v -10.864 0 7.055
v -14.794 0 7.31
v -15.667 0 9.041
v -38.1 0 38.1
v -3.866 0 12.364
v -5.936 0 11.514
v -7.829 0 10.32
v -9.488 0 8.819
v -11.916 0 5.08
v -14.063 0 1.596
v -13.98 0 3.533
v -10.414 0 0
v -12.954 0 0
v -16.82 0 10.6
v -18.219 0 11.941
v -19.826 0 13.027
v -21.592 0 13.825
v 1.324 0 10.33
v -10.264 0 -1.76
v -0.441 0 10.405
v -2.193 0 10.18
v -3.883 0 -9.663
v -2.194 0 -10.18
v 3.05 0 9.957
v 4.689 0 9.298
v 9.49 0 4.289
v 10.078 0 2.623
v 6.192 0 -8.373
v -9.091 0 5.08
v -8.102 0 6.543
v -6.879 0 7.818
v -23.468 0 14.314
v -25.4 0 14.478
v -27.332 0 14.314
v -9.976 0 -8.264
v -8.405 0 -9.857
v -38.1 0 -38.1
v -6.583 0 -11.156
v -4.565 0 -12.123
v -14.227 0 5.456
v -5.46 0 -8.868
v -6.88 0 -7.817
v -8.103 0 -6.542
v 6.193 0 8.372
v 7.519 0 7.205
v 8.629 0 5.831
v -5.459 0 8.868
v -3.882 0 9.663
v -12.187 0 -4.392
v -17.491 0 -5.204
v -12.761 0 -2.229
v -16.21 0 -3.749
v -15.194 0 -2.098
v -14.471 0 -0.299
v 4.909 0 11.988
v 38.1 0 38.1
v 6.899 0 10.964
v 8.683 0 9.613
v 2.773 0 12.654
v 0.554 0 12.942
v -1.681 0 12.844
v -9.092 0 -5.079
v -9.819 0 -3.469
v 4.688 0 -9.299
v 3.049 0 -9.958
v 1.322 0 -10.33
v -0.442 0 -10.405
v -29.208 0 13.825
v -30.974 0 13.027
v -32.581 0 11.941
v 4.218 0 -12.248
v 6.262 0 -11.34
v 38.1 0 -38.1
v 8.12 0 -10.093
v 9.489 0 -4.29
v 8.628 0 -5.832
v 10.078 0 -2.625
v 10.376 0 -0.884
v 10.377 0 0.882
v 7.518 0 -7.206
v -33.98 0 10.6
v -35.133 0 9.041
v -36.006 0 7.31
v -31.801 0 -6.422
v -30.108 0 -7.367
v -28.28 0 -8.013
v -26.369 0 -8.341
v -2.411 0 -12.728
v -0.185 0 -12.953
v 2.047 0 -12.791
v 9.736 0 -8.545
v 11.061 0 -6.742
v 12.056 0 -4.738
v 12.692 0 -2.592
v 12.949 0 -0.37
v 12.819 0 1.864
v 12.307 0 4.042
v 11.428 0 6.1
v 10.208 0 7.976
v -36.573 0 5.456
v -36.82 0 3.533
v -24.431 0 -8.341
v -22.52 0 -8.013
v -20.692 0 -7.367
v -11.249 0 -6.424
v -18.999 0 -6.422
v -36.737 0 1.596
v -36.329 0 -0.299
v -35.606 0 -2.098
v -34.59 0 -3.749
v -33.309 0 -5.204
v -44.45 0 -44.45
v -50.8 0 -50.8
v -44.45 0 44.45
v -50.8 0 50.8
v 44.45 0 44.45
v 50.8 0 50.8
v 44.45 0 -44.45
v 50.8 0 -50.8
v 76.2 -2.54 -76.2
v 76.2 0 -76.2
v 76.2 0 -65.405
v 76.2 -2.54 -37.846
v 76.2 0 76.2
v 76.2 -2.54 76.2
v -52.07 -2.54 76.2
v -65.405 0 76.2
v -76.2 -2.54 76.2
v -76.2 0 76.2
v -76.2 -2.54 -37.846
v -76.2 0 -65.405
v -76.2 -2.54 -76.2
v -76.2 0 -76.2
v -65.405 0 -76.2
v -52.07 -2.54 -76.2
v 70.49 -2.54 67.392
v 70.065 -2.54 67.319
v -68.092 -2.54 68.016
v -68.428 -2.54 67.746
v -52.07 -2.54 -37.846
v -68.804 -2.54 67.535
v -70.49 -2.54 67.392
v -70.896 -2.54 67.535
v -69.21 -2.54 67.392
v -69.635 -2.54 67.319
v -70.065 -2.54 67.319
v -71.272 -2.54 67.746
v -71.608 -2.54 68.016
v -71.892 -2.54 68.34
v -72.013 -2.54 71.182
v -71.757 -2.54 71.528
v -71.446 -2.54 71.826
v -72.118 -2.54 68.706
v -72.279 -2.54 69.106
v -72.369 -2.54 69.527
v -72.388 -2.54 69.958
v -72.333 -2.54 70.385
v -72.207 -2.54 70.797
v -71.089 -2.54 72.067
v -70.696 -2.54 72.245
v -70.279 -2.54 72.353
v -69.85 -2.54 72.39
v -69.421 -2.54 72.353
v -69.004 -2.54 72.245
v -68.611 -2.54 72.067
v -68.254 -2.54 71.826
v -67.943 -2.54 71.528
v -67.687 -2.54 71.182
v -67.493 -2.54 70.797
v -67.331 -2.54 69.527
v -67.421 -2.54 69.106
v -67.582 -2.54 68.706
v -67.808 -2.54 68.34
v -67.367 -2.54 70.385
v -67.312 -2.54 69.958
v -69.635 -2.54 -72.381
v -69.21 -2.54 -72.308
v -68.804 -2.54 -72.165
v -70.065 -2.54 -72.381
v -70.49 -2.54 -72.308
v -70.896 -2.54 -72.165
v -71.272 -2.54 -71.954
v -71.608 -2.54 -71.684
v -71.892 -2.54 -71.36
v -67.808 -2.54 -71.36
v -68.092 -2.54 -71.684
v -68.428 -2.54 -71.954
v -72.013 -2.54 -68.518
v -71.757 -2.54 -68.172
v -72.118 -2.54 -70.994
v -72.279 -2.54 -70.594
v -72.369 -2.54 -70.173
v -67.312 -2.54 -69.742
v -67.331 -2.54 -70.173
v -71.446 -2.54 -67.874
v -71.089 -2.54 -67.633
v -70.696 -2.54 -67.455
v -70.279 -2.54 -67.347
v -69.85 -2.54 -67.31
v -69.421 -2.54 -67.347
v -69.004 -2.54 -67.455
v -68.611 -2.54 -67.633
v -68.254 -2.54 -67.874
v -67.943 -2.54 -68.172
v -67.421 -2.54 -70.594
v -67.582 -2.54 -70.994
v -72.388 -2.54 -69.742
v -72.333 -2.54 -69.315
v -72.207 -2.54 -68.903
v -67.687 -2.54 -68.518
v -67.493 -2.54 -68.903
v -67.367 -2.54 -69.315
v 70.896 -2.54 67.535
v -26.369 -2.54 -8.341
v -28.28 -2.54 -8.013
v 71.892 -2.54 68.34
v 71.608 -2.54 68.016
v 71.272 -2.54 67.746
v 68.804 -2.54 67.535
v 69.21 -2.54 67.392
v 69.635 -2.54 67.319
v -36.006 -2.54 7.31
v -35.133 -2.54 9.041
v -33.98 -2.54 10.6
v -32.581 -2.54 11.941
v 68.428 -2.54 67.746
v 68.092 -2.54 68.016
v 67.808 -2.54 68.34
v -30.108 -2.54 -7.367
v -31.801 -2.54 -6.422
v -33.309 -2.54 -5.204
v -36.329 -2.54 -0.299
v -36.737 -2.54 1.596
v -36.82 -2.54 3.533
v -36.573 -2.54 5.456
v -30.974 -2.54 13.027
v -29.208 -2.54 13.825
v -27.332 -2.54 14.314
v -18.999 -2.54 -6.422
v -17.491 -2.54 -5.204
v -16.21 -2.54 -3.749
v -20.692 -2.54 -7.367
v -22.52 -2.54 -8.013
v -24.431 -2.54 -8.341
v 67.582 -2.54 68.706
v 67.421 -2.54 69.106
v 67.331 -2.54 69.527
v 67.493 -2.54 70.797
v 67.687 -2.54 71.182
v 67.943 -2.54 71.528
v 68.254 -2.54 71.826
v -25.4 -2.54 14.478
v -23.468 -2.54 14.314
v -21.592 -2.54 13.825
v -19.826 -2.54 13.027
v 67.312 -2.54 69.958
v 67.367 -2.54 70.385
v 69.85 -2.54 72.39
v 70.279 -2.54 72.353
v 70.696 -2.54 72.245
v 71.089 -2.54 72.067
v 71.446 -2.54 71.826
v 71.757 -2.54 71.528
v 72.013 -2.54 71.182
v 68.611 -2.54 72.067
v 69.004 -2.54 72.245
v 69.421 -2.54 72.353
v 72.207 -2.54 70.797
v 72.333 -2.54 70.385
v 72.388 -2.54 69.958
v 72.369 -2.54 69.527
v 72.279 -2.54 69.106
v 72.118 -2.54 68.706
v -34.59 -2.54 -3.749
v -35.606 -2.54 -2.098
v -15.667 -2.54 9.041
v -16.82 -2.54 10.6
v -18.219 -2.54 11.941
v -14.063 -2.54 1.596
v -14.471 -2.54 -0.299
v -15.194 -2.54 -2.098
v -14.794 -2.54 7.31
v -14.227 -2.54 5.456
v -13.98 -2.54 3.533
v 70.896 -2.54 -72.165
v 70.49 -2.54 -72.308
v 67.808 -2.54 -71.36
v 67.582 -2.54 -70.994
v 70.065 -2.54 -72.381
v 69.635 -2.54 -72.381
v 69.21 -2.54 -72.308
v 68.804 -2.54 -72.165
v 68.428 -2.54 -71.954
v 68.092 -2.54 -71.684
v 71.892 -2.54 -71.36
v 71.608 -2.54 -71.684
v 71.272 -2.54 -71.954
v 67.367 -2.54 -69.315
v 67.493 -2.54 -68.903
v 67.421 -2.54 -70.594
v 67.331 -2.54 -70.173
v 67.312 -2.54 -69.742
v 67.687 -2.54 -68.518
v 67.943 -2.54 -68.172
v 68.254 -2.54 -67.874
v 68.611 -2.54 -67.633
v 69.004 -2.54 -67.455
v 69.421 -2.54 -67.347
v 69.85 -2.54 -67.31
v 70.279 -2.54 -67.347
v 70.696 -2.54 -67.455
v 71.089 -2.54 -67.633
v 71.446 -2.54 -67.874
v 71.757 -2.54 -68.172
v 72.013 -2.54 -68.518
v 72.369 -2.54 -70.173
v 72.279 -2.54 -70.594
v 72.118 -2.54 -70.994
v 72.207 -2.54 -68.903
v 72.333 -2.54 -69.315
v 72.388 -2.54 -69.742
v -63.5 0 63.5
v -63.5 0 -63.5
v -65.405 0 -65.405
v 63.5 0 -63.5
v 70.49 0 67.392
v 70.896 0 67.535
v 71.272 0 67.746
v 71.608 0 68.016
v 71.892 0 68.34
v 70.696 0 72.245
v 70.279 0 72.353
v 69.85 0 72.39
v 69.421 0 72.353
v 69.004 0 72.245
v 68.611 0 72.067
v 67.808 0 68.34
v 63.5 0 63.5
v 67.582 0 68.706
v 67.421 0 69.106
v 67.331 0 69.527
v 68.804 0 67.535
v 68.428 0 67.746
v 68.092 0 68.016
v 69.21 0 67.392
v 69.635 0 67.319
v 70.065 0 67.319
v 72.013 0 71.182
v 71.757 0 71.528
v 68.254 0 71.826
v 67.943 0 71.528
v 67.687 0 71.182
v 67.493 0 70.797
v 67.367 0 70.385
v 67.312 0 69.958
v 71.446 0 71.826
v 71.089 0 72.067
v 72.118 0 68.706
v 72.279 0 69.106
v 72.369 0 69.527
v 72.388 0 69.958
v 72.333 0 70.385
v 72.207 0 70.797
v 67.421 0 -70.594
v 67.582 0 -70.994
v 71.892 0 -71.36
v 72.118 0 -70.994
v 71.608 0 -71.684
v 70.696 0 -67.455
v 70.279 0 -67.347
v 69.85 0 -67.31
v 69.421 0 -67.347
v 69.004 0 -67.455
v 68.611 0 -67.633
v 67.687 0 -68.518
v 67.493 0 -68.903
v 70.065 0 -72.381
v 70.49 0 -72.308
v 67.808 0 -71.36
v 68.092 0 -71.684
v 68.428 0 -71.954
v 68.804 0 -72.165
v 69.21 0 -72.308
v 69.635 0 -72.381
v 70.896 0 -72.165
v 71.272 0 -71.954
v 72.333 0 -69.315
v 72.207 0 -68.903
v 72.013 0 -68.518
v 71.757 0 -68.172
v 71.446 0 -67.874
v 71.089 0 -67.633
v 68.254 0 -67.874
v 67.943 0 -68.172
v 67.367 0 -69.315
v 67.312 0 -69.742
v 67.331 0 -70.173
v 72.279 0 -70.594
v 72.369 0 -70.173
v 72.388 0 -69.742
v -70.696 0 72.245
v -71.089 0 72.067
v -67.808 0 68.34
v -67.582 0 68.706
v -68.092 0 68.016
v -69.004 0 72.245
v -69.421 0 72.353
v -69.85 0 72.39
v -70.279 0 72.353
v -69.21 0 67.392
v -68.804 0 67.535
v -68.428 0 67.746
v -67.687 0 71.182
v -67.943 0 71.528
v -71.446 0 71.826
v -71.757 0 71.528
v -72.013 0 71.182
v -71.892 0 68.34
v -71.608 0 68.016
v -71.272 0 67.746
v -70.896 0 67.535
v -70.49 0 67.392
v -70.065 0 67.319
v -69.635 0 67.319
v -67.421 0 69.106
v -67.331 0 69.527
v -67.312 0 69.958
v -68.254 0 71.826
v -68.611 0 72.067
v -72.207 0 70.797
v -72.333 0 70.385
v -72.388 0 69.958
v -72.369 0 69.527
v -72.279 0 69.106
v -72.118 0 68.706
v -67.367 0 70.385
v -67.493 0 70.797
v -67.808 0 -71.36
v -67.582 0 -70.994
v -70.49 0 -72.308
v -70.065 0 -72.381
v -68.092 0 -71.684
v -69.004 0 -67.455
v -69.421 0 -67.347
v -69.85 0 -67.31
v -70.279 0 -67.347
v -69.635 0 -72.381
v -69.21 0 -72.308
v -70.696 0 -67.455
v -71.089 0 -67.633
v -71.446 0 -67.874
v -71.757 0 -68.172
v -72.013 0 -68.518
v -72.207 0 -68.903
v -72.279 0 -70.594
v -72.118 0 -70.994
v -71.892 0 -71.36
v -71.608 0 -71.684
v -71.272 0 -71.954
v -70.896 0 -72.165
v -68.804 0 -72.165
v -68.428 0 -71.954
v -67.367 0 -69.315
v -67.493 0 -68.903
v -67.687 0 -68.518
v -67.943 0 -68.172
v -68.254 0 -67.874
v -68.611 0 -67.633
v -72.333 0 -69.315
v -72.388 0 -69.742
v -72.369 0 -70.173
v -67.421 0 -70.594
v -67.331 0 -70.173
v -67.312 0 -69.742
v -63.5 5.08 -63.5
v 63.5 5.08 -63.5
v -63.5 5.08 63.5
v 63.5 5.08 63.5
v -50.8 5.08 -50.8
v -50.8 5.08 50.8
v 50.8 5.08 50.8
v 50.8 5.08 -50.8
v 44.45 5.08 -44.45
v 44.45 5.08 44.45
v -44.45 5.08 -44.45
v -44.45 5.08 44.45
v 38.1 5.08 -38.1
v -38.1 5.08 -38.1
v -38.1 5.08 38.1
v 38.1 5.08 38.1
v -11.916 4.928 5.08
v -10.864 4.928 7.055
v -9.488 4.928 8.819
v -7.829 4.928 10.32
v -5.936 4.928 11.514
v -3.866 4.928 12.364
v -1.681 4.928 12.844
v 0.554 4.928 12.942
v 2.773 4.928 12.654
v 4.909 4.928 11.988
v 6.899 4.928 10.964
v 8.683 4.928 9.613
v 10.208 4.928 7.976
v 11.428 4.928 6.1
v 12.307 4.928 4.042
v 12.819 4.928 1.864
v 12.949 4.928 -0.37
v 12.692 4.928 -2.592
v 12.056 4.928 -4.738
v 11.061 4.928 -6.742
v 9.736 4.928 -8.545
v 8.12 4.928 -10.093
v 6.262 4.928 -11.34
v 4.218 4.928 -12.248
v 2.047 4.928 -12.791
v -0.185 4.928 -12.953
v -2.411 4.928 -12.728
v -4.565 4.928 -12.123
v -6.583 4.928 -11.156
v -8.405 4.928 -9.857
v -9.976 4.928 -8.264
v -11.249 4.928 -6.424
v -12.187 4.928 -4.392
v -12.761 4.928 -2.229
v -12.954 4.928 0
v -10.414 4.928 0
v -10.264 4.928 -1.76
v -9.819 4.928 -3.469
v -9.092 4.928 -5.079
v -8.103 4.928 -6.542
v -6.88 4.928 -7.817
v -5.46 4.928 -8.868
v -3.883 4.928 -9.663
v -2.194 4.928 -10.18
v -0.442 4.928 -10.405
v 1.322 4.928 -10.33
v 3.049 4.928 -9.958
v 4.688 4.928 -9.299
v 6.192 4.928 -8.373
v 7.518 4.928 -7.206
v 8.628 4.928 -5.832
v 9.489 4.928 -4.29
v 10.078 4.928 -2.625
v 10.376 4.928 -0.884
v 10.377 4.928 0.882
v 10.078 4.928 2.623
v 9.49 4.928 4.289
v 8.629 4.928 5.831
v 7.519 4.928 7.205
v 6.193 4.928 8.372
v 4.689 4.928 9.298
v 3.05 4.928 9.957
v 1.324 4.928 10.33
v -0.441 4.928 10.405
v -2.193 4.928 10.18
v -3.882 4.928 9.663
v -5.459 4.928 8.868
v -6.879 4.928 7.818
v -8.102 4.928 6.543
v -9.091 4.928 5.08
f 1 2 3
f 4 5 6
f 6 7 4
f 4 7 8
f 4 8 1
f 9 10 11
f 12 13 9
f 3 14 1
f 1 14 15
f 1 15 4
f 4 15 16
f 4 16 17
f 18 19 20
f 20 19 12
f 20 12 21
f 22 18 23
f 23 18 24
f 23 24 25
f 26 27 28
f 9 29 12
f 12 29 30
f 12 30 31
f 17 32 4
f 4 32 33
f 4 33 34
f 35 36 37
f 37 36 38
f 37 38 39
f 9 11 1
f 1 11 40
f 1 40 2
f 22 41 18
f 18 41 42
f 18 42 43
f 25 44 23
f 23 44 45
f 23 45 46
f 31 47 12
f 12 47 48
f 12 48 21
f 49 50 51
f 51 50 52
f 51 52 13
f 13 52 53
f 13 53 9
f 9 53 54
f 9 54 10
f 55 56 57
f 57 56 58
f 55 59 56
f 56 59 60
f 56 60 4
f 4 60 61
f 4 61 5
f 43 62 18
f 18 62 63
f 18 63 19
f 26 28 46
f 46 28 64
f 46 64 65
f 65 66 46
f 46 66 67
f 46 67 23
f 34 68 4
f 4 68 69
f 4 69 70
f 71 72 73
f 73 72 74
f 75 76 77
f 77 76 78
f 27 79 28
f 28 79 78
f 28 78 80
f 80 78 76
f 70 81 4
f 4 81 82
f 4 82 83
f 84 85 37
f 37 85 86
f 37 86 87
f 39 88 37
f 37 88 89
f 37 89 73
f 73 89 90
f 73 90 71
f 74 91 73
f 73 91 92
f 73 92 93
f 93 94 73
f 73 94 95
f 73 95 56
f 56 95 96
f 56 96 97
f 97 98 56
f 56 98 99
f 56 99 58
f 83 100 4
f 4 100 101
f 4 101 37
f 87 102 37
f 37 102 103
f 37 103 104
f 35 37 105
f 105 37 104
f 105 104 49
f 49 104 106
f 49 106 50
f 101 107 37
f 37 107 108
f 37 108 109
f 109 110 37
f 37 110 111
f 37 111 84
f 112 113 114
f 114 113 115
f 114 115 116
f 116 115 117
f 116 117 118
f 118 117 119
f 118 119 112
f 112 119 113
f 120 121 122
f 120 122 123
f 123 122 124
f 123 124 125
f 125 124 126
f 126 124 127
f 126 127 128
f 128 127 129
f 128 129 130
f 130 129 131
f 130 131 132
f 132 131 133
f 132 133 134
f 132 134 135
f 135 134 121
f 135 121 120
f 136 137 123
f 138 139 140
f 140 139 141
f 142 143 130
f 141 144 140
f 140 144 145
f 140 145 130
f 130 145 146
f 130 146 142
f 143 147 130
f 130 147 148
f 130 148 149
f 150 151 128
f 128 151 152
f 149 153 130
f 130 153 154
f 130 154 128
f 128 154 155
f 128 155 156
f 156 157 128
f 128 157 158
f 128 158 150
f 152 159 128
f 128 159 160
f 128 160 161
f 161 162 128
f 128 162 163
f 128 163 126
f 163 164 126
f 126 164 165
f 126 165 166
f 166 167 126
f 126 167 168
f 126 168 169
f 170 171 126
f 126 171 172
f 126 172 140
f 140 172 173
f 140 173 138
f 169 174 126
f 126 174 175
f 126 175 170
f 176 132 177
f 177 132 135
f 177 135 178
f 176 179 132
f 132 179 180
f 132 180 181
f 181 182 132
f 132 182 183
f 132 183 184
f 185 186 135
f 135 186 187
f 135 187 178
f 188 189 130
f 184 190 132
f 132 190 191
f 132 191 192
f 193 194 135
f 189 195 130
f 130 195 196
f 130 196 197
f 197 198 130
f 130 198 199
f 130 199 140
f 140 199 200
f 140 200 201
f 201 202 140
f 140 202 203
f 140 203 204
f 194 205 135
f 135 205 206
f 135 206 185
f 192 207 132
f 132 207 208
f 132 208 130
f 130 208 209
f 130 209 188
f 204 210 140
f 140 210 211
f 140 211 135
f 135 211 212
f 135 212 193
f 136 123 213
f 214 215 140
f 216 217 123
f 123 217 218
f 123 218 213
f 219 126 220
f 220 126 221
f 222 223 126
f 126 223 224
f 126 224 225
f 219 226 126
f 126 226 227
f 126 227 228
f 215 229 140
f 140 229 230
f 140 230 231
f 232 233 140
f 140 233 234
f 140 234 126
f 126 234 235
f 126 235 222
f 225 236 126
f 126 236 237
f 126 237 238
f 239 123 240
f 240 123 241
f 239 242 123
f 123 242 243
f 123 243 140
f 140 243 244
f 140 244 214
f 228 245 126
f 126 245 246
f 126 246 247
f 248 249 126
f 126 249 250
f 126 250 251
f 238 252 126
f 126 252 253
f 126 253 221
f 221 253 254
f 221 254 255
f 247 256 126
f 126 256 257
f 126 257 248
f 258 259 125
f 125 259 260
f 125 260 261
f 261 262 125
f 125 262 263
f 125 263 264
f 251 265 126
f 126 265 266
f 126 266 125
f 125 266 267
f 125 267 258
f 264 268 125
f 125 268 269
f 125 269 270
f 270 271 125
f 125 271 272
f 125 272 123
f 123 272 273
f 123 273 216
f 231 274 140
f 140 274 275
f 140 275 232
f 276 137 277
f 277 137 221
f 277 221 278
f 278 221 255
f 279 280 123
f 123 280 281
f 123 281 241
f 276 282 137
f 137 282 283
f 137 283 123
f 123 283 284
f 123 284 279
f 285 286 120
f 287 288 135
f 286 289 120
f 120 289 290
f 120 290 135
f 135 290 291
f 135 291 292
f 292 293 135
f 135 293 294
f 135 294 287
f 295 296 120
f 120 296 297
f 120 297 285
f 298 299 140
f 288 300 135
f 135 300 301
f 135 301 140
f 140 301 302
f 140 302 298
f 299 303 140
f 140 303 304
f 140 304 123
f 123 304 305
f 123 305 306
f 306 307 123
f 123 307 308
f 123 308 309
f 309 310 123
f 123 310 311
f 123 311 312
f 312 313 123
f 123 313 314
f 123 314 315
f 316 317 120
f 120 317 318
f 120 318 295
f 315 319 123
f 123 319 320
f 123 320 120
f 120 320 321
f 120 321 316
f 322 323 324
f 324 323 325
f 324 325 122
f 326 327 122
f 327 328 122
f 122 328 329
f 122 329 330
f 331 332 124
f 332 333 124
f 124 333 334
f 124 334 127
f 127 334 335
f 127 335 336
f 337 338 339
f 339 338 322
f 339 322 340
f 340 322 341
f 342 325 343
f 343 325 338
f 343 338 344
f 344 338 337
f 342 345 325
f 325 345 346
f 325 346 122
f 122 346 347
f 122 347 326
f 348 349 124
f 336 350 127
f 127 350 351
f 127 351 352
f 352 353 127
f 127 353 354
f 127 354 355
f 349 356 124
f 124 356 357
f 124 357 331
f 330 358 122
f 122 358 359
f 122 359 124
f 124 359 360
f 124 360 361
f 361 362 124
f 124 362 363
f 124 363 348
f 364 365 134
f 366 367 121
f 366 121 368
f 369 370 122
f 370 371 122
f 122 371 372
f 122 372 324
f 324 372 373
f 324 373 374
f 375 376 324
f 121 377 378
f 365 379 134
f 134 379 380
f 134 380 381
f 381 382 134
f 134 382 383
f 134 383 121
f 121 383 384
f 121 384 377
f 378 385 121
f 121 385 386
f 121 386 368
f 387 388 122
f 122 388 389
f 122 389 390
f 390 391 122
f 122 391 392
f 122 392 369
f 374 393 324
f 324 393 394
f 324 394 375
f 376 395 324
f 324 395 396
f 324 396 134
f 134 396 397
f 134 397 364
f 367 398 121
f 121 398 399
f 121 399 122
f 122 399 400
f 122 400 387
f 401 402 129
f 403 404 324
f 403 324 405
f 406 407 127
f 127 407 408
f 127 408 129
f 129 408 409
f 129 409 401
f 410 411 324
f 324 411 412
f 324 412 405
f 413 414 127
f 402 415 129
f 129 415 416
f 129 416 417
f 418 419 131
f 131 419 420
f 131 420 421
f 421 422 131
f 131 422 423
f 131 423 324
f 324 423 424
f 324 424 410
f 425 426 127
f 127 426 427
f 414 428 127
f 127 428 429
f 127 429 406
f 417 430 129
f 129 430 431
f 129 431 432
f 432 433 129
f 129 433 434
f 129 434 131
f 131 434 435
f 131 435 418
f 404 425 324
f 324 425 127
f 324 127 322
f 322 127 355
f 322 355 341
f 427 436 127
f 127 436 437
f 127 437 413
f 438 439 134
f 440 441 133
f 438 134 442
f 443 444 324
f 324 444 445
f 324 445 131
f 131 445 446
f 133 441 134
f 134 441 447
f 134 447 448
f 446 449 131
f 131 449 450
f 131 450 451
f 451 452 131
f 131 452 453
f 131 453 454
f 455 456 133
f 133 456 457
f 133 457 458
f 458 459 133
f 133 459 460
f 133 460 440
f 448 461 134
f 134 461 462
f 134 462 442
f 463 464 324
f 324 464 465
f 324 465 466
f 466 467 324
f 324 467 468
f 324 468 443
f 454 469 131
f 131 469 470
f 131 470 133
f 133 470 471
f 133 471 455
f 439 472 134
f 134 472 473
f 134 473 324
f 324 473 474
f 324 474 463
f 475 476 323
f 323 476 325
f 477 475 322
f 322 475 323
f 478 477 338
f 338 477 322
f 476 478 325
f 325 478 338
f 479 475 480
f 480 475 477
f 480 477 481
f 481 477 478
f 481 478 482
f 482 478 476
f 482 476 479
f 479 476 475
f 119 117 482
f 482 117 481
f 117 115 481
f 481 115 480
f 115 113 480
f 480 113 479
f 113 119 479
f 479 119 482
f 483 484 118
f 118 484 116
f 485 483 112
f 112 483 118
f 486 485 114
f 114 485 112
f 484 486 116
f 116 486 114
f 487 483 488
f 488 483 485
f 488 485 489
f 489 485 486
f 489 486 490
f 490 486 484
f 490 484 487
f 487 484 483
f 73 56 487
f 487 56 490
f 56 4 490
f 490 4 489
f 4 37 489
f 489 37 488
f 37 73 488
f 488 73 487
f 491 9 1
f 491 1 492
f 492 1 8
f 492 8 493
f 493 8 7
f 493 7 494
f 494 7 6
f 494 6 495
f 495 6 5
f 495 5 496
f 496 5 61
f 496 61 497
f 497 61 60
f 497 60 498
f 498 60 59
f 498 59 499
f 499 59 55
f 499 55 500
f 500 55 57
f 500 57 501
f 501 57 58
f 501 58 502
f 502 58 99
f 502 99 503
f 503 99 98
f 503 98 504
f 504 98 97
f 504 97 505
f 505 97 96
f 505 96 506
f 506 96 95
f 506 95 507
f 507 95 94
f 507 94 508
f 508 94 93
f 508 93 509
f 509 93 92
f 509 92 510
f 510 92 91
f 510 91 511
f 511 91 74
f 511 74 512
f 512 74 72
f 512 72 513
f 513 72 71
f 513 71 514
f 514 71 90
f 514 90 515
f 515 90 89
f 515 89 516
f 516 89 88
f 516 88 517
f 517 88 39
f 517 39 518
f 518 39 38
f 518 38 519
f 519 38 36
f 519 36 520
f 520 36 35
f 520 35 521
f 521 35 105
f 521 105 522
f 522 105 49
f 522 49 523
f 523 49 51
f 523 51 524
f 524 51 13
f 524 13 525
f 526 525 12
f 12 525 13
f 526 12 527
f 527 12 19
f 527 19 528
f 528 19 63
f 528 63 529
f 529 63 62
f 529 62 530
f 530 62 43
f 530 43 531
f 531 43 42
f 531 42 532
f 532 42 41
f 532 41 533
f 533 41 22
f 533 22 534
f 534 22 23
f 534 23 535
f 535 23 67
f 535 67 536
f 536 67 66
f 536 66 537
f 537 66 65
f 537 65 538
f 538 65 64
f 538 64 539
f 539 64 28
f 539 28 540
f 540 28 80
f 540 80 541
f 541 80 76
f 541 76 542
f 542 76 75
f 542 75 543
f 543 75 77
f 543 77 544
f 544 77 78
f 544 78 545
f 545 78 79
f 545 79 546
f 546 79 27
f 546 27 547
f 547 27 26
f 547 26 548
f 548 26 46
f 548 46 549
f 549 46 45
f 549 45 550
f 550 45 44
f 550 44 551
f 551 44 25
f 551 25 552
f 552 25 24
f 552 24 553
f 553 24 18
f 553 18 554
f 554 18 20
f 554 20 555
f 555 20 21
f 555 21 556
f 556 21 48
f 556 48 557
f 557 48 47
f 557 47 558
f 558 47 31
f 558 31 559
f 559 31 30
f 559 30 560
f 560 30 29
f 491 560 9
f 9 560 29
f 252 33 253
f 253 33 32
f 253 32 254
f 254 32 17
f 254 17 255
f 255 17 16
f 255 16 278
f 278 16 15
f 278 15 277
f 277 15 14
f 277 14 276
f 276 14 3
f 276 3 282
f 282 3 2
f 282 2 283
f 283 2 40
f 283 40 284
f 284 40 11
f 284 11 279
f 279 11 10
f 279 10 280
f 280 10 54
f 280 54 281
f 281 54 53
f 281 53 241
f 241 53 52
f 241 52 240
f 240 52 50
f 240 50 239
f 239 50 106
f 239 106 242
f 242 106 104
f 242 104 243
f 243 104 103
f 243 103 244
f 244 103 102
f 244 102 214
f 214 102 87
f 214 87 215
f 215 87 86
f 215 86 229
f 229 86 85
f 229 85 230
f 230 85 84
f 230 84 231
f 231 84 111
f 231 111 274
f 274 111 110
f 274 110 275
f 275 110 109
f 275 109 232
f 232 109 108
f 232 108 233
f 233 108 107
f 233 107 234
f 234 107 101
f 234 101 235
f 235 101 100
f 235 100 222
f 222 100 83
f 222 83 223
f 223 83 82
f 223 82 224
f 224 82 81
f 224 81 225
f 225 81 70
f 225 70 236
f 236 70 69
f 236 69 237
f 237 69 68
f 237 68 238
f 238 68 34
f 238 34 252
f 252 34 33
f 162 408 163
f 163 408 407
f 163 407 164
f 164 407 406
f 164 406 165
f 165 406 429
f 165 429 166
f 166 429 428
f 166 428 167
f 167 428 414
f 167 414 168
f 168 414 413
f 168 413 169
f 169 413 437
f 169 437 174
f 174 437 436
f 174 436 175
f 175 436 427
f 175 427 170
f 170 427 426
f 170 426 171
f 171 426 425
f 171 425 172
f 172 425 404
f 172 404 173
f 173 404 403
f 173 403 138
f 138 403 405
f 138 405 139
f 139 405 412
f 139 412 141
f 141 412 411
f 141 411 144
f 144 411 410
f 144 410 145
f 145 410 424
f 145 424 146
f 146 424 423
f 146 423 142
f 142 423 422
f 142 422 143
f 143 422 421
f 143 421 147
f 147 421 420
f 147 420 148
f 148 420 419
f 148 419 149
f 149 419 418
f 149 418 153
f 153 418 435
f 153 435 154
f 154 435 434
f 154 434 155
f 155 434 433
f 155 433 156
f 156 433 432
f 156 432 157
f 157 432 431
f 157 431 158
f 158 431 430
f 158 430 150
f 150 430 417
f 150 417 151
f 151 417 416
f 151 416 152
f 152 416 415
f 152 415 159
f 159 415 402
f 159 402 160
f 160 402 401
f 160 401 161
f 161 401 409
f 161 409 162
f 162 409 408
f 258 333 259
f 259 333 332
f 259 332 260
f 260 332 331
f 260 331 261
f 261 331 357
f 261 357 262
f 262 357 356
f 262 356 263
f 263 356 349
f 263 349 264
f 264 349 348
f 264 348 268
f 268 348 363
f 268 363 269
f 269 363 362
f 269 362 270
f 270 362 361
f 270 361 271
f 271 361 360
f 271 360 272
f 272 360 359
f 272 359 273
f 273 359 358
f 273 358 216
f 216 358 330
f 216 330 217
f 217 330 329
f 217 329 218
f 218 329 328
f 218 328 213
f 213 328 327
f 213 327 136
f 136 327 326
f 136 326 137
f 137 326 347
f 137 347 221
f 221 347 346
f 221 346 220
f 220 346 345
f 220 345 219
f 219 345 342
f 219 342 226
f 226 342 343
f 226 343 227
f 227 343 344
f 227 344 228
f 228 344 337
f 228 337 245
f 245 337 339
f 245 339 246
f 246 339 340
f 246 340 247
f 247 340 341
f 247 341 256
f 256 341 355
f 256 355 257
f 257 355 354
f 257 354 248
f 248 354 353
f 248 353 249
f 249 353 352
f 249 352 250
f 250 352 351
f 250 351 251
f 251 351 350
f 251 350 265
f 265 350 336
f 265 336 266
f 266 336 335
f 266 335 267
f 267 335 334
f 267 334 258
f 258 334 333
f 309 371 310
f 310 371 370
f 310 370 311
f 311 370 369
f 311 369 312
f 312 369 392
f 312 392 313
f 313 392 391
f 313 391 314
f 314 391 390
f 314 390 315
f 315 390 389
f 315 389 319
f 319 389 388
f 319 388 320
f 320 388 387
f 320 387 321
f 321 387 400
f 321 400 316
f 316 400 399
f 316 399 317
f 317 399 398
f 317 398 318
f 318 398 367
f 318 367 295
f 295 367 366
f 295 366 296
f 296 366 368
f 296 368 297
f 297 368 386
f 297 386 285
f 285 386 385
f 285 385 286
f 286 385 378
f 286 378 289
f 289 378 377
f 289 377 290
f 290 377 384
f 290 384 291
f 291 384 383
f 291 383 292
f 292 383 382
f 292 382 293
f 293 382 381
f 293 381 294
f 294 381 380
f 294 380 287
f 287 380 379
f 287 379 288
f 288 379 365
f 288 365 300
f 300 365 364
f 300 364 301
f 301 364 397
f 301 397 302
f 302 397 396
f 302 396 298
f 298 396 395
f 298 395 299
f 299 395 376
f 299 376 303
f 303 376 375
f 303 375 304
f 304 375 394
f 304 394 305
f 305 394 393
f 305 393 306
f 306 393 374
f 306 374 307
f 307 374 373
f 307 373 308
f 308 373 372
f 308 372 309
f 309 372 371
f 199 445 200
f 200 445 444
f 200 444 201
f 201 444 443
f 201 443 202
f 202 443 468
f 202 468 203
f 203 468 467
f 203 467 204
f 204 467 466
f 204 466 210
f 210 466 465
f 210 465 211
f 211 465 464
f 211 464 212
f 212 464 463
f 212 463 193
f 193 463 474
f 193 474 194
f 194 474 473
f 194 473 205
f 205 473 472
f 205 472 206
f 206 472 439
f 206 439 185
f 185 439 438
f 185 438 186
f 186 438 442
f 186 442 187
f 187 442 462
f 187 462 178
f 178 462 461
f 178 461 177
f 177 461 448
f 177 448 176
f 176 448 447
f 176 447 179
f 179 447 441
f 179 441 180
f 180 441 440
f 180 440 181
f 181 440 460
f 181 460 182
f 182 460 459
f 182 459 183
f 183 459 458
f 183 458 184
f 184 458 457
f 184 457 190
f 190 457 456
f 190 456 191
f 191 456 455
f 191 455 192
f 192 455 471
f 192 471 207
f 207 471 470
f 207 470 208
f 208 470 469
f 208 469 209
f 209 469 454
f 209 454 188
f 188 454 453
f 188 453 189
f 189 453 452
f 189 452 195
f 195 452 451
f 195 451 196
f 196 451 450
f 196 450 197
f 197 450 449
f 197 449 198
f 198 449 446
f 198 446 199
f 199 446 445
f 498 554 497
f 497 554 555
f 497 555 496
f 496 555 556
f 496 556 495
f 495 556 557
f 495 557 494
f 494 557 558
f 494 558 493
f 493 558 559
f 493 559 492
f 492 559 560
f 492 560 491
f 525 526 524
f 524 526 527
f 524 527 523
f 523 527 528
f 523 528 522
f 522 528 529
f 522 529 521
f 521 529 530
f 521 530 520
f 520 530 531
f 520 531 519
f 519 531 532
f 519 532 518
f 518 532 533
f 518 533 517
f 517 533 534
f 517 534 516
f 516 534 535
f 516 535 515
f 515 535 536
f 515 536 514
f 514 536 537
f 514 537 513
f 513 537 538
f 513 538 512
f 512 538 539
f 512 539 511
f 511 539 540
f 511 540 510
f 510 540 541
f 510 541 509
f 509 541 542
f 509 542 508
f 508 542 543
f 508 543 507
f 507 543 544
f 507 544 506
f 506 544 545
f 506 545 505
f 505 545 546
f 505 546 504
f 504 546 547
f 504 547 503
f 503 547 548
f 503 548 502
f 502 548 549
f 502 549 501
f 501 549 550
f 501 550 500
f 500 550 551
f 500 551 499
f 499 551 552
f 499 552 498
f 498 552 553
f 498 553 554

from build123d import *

# Parameters (mm, degrees)
SKETCH1_W           = 152.4
SKETCH1_H           = 152.4
BOSS_EXTRUDE1_DEPTH = 2.54
SKETCH2_W           = 127
SKETCH2_H           = 127
BOSS_EXTRUDE3_DEPTH = 5.08
SKETCH3_W           = 101.6
SKETCH3_H           = 101.6
CUT_EXTRUDE2_DEPTH  = 5.08
SKETCH5_W           = 88.9
SKETCH5_H           = 88.9
BOSS_EXTRUDE4_DEPTH = 5.08
SKETCH6_W           = 76.2
SKETCH6_H           = 76.2
CUT_EXTRUDE3_DEPTH  = 5.08
BOSS_EXTRUDE5_DEPTH = 2.794
SKETCH8_R           = 11.43
CUT_EXTRUDE4_DEPTH  = 3.54
SKETCH9_R           = 2.54
CUT_EXTRUDE5_DEPTH  = 3.54
BOSS_EXTRUDE6_DEPTH = 4.9276


with BuildPart() as part:
    # Sketch1 → Boss-Extrude1 (new body)
    with BuildSketch(Plane(origin=(0, 0, 0), x_dir=(1, 0, 0), z_dir=(0, 1, 0))):
        Rectangle(SKETCH1_W, SKETCH1_H)
    extrude(amount=-BOSS_EXTRUDE1_DEPTH)

    # Sketch2 → Boss-Extrude3 (add)
    with BuildSketch(Plane(origin=(0, 0, 0), x_dir=(1, 0, 0), z_dir=(0, 1, 0))):
        Rectangle(SKETCH2_W, SKETCH2_H)
    extrude(amount=BOSS_EXTRUDE3_DEPTH)

    # Sketch3 → Cut-Extrude2 (cut)
    with BuildSketch(Plane(origin=(0, 5.08, 0), x_dir=(1, 0, 0), z_dir=(0, 1, 0))):
        Rectangle(SKETCH3_W, SKETCH3_H)
    extrude(amount=-CUT_EXTRUDE2_DEPTH, mode=Mode.SUBTRACT)

    # Sketch5 → Boss-Extrude4 (add)
    with BuildSketch(Plane(origin=(0, 0, 0), x_dir=(1, 0, 0), z_dir=(0, 1, 0))):
        Rectangle(SKETCH5_W, SKETCH5_H)
    extrude(amount=BOSS_EXTRUDE4_DEPTH)

    # Sketch6 → Cut-Extrude3 (cut)
    with BuildSketch(Plane(origin=(0, 5.08, 0), x_dir=(1, 0, 0), z_dir=(0, 1, 0))):
        Rectangle(SKETCH6_W, SKETCH6_H)
    extrude(amount=-CUT_EXTRUDE3_DEPTH, mode=Mode.SUBTRACT)

    # Sketch7 → Boss-Extrude5 (add)
    with BuildSketch(Plane(origin=(0, 0, 0), x_dir=(1, 0, 0), z_dir=(0, 1, 0))):
        with BuildLine():
            Line((-10.414, 0), (-12.954, 0))
            ThreePointArc((-12.954, 0), (12.691940102, 2.592445263), (-11.916363371, -5.08))
            Line((-11.916363371, -5.08), (-9.090929325, -5.08))
            ThreePointArc((-9.090929325, -5.08), (10.077805664, 2.624734082), (-10.414, 0))
        make_face()
    extrude(amount=BOSS_EXTRUDE5_DEPTH)

    # Sketch8 → Cut-Extrude4 (cut, through all)
    with BuildSketch(Plane(origin=(0, 0, 0), x_dir=(1, 0, 0), z_dir=(0, 1, 0))):
        with Locations((-25.4, -3.048)):
            Circle(SKETCH8_R)
    extrude(amount=-CUT_EXTRUDE4_DEPTH, mode=Mode.SUBTRACT)

    # Sketch9 → Cut-Extrude5 (cut, through all)
    with BuildSketch(Plane(origin=(0, 0, 0), x_dir=(1, 0, 0), z_dir=(0, 1, 0))):
        with Locations((-69.85, -69.85)):
            Circle(SKETCH9_R)
        with Locations((69.85, -69.85)):
            Circle(SKETCH9_R)
        with Locations((69.85, 69.85)):
            Circle(SKETCH9_R)
        with Locations((-69.85, 69.85)):
            Circle(SKETCH9_R)
    extrude(amount=-CUT_EXTRUDE5_DEPTH, mode=Mode.SUBTRACT)

    # Sketch7<2> → Boss-Extrude6 (add)
    with BuildSketch(Plane(origin=(0, 0, 0), x_dir=(1, 0, 0), z_dir=(0, 1, 0))):
        with BuildLine():
            Line((-10.414, 0), (-12.954, 0))
            ThreePointArc((-12.954, 0), (12.691940102, 2.592445263), (-11.916363371, -5.08))
            Line((-11.916363371, -5.08), (-9.090929325, -5.08))
            ThreePointArc((-9.090929325, -5.08), (10.077805664, 2.624734082), (-10.414, 0))
        make_face()
    extrude(amount=BOSS_EXTRUDE6_DEPTH)


solid = part.part
